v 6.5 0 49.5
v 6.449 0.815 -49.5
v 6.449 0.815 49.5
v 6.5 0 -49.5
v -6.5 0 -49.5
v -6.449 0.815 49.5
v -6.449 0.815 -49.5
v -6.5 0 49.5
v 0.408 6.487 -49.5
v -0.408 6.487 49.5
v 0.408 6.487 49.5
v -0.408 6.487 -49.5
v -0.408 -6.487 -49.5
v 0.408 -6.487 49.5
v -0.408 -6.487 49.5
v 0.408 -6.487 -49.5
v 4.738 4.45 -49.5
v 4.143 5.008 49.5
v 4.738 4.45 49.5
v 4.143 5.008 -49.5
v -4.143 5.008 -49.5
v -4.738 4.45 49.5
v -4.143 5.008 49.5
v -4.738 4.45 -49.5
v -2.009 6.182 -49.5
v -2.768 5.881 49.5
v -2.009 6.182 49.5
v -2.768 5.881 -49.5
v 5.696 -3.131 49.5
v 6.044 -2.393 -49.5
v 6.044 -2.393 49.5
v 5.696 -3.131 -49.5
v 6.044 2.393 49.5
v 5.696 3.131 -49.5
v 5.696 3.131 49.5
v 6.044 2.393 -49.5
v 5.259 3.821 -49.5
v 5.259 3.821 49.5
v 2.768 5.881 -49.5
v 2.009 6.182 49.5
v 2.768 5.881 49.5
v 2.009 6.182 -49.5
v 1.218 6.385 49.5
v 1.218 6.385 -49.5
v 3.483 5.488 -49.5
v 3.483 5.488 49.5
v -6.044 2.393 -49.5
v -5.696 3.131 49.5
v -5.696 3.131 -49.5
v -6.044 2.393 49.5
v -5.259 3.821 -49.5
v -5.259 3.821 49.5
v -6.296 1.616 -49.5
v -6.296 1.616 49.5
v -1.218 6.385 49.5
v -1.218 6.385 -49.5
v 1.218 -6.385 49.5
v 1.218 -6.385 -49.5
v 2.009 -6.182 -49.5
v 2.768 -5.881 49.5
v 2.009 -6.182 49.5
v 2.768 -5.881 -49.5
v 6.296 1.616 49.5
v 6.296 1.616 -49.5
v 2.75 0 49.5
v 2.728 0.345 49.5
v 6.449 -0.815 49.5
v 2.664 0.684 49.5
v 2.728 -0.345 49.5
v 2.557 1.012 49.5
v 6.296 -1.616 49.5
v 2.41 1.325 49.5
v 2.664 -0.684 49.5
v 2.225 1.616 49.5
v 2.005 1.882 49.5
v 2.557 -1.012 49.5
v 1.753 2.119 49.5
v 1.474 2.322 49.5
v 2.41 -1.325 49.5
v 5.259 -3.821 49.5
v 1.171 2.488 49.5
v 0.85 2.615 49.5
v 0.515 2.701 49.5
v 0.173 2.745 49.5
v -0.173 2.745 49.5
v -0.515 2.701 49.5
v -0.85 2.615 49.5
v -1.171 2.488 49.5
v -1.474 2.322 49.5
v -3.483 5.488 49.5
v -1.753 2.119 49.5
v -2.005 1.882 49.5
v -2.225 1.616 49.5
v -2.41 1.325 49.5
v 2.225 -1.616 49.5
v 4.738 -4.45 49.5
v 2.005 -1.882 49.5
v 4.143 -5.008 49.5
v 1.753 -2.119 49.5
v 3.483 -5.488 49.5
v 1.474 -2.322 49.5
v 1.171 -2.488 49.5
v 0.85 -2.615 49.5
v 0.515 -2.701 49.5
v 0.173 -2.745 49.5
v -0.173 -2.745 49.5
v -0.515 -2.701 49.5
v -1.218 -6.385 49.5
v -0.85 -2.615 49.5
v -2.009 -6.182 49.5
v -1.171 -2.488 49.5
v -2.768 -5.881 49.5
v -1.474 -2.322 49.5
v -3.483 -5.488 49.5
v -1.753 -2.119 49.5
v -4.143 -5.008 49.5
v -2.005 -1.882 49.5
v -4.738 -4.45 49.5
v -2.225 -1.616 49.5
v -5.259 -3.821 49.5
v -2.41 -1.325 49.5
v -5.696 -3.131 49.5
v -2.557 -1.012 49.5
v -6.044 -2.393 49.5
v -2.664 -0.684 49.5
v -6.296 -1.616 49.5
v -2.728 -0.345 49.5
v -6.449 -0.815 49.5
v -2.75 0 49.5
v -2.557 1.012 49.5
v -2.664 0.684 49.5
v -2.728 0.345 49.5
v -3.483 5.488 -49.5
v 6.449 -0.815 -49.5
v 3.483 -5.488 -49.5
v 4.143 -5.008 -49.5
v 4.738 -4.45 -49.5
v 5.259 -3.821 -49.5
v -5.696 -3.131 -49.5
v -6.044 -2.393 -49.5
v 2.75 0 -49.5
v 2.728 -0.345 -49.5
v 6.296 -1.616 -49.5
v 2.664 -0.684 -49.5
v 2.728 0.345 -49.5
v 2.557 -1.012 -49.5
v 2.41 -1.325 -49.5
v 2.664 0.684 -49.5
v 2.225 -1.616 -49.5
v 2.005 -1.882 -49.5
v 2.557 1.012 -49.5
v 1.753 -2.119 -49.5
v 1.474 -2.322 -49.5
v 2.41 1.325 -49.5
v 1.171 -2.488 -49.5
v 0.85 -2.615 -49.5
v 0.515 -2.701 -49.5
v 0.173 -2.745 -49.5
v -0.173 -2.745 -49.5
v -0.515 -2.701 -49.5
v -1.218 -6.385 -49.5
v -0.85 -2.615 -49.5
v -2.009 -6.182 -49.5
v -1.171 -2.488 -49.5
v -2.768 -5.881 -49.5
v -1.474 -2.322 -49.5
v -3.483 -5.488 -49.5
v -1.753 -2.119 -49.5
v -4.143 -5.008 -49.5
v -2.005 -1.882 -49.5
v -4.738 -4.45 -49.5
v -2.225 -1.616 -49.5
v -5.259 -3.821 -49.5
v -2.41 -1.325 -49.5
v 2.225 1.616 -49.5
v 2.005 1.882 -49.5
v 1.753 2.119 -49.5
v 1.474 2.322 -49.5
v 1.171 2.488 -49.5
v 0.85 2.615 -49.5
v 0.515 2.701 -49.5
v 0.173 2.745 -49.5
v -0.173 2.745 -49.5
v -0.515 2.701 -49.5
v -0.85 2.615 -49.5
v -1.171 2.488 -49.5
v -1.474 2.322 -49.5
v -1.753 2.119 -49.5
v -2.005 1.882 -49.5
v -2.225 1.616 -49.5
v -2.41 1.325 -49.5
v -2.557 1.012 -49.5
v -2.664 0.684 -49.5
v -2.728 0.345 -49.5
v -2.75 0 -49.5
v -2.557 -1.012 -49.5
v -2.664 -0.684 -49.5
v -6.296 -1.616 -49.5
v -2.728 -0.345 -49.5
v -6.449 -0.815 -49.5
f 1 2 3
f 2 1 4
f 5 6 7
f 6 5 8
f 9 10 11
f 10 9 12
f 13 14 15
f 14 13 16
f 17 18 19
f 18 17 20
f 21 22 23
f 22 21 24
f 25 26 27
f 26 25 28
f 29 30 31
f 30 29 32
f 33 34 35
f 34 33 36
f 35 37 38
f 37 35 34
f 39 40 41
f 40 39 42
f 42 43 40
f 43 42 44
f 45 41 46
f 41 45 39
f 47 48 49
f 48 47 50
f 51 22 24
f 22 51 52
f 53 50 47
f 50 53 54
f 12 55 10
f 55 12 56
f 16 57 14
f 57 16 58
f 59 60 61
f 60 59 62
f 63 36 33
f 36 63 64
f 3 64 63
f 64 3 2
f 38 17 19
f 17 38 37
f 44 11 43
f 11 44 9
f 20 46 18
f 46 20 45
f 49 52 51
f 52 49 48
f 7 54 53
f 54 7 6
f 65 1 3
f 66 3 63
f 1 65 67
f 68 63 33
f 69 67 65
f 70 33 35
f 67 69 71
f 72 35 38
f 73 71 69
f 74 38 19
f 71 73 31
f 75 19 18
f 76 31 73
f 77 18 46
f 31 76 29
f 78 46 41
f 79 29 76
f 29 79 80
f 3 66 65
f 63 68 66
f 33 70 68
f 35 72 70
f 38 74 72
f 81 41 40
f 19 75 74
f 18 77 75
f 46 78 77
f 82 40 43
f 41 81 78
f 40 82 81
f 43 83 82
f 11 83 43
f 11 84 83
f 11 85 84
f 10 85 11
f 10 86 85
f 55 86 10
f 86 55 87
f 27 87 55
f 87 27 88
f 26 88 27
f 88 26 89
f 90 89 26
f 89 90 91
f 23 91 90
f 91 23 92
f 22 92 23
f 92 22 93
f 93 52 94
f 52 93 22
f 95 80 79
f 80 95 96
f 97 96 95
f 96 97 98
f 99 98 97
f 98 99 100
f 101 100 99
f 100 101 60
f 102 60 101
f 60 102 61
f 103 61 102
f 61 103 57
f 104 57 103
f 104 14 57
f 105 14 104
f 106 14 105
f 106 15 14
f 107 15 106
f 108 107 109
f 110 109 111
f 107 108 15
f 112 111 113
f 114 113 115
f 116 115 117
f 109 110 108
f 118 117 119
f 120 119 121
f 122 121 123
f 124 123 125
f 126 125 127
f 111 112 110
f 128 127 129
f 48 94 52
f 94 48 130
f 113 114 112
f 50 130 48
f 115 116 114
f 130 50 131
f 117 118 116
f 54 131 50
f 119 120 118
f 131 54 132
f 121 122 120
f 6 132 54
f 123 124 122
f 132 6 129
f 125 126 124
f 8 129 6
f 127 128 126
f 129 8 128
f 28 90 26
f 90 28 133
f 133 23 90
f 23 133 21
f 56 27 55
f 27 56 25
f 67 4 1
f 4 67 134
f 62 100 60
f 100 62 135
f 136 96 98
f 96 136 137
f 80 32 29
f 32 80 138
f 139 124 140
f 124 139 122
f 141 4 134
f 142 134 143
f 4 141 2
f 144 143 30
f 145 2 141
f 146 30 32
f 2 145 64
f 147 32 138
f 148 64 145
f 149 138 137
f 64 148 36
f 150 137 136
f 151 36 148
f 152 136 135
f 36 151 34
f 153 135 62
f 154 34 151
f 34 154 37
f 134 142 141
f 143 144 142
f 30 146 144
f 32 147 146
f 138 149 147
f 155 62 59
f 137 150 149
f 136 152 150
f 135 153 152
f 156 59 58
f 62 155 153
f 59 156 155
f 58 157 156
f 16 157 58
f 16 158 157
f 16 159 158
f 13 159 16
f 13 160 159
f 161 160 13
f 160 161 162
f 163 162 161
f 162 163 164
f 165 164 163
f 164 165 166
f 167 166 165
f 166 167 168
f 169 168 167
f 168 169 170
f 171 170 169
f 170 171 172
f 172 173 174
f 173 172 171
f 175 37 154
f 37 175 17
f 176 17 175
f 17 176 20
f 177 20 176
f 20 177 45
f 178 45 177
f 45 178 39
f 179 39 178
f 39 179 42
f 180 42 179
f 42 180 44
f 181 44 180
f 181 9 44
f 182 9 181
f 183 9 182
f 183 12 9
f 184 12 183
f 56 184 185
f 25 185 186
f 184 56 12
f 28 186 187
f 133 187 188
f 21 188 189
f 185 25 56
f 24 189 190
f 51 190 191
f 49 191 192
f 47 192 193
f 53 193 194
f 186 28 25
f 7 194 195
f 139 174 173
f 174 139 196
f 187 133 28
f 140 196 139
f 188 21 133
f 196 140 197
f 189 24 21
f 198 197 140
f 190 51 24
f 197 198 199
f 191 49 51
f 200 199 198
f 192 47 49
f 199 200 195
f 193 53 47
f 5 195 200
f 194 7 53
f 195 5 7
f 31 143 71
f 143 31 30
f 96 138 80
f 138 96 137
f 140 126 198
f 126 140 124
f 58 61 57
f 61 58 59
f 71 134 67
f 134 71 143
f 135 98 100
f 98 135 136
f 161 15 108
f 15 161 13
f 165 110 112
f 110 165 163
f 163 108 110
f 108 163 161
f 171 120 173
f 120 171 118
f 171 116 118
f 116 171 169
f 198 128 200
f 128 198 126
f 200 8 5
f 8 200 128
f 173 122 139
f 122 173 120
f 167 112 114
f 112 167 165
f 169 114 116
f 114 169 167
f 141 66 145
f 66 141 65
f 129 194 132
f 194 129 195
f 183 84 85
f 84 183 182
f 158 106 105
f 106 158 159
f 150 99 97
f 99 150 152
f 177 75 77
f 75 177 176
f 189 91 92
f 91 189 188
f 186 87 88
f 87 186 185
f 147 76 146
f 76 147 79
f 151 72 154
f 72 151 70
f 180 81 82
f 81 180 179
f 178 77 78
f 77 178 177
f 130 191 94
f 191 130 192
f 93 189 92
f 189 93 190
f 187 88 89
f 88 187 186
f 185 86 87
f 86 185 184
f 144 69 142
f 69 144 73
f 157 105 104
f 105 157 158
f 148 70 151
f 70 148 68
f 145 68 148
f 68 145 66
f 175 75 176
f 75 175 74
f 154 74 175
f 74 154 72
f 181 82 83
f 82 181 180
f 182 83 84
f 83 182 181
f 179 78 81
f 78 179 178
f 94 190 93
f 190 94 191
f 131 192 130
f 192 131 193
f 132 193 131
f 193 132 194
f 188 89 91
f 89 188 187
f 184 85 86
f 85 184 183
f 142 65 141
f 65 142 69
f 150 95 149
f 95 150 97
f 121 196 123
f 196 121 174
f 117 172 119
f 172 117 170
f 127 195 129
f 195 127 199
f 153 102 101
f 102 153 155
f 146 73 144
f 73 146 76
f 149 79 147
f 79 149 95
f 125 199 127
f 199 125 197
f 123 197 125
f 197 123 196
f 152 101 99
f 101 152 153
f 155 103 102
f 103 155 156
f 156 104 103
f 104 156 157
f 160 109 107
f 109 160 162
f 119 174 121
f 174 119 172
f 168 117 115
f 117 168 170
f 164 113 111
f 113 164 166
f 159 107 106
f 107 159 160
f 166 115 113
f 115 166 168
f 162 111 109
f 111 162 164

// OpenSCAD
$fn = 50;


difference() {
	union() {
		translate(v = [0, 0, -49.5000000000]) {
			cylinder(h = 99, r = 6.5000000000);
		}
	}
	union() {
		translate(v = [0, 0, -100.0000000000]) {
			cylinder(h = 200, r = 2.7500000000);
		}
	}
}
